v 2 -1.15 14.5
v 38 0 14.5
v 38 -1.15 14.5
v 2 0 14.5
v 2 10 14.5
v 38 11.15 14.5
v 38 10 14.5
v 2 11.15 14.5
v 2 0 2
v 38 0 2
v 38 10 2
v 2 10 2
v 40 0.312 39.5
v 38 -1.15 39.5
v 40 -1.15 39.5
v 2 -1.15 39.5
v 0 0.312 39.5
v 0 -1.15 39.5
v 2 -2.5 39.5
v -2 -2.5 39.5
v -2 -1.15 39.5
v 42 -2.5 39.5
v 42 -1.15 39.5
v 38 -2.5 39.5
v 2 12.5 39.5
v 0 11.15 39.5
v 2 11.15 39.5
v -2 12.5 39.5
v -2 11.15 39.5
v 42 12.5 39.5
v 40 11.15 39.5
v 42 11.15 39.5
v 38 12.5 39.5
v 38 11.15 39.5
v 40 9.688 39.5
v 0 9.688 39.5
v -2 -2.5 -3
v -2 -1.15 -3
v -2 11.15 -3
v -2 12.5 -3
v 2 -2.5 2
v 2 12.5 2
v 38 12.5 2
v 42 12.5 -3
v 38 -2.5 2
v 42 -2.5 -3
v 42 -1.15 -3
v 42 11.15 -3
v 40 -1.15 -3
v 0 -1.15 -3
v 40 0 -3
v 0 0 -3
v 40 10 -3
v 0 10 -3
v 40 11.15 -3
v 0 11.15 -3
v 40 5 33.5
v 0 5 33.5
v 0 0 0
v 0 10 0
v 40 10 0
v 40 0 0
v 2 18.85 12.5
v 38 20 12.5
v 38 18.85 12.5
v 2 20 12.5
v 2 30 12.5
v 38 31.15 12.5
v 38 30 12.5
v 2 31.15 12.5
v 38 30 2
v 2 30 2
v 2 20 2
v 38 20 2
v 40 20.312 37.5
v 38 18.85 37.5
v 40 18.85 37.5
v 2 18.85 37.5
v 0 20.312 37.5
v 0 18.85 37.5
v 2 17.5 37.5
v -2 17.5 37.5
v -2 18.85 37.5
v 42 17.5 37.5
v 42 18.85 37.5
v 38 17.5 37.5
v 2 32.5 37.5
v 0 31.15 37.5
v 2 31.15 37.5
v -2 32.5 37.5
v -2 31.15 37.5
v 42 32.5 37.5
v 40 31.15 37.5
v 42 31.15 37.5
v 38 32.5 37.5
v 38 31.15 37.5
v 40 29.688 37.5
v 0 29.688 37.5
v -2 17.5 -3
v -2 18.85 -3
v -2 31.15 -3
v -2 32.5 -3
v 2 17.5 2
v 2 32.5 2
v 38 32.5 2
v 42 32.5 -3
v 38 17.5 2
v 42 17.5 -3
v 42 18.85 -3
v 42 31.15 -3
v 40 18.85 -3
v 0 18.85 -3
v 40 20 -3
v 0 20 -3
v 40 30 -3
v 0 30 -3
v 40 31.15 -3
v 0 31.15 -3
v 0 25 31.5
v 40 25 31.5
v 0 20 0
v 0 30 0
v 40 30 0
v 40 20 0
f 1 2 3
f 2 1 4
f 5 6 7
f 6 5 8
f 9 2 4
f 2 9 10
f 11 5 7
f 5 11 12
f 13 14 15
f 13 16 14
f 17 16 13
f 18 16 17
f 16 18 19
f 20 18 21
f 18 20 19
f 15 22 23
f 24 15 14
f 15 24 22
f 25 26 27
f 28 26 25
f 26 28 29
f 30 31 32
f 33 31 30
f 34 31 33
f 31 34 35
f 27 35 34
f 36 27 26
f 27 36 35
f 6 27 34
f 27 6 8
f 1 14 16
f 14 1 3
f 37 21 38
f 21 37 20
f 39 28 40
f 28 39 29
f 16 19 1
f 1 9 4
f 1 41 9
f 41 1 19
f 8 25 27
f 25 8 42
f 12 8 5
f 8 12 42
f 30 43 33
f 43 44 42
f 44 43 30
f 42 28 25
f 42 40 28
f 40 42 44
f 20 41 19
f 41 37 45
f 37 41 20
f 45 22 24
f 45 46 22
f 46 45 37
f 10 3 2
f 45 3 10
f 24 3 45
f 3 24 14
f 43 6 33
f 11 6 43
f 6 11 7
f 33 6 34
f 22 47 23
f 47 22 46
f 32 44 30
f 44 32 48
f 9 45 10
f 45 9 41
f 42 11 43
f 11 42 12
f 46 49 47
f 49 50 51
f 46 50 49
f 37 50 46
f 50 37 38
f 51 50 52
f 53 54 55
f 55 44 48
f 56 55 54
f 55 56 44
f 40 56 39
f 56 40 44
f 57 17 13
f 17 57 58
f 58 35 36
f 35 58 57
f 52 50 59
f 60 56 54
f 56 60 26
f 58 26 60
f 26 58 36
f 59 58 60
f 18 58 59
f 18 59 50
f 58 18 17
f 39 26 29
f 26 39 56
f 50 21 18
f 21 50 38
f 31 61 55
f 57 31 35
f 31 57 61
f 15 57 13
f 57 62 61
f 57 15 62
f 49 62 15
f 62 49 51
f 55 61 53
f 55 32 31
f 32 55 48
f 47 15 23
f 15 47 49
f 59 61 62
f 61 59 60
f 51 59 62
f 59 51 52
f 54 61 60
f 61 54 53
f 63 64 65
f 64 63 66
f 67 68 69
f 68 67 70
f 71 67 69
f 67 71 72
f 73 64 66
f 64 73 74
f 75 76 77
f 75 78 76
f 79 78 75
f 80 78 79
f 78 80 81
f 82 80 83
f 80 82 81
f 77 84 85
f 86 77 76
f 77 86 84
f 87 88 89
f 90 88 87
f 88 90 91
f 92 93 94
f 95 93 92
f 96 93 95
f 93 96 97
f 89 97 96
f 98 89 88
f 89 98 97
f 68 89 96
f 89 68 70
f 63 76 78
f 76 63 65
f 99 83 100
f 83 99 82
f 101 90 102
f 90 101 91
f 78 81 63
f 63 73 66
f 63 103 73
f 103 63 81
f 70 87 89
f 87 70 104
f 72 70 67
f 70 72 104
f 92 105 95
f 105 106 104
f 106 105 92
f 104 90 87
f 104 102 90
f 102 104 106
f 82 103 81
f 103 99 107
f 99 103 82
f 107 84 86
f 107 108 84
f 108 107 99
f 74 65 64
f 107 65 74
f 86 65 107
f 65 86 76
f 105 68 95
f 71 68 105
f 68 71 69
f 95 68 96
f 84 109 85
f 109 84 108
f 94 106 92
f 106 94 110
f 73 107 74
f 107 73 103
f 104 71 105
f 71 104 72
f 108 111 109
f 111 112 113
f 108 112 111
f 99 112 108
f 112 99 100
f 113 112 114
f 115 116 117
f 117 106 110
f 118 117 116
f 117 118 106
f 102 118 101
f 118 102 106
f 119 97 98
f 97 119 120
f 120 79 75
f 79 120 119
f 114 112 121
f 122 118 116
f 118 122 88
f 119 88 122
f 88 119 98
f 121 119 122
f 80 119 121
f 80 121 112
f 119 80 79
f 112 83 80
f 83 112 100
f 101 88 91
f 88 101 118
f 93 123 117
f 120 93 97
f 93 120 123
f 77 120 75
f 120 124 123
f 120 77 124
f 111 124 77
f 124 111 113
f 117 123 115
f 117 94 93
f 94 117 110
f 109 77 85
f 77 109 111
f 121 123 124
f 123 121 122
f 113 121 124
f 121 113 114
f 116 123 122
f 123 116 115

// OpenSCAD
boardThickness = 10;
railThickness = 12.3;
railHeight = 25;
holeWidth = 40;
sideClampWidth = 2;
sideClampDepth = 15;
sideClampSlot = 12.3;
sideClampOverlap = 2;

bottClampHeight = 3;
bottClampDepth = sideClampDepth;
bottClampSlot = boardThickness;
bottClampOverlap = 2;

angle = 76;

module board(boardHeight)
{
    difference()
    {
        union()
        {
            cube([holeWidth, boardThickness, boardHeight]);
            translate([0,(boardThickness/2)-(railThickness/2),boardHeight])
                cube([holeWidth, railThickness, railHeight]);
            
            translate([-sideClampWidth,(boardThickness/2)-(sideClampDepth/2),0])
                cube([sideClampWidth+sideClampOverlap, sideClampDepth, boardHeight + railHeight]);
            
            translate([holeWidth-sideClampOverlap,(boardThickness/2)-(sideClampDepth/2),0])
                cube([sideClampWidth+sideClampOverlap, sideClampDepth, boardHeight + railHeight]);
            
            translate([-sideClampWidth,(boardThickness/2)-(bottClampDepth/2),-bottClampHeight])
                cube([sideClampWidth+holeWidth+sideClampWidth, bottClampDepth, bottClampHeight+bottClampOverlap]);
        }
    
        translate([holeWidth+20,boardThickness/2,boardHeight+railHeight-6])
            rotate([0,-90,0])
            rotate([0, 0, -angle/2])
            rotate_extrude(angle = angle)
            square([10, holeWidth+40]);
            
        translate([-20,(boardThickness/2)-(railThickness/2),-20])
            cube([20,railThickness,100]);
            
        translate([holeWidth,(boardThickness/2)-(railThickness/2),-20])
            cube([20,railThickness,100]);
        
        
        translate([-50,(boardThickness/2)-(bottClampSlot/2),-bottClampHeight])
            cube([100,bottClampSlot,bottClampHeight]);
    }

}



board(39.5-railHeight);
translate([0, 20, 0])
    board(37.5-railHeight);
